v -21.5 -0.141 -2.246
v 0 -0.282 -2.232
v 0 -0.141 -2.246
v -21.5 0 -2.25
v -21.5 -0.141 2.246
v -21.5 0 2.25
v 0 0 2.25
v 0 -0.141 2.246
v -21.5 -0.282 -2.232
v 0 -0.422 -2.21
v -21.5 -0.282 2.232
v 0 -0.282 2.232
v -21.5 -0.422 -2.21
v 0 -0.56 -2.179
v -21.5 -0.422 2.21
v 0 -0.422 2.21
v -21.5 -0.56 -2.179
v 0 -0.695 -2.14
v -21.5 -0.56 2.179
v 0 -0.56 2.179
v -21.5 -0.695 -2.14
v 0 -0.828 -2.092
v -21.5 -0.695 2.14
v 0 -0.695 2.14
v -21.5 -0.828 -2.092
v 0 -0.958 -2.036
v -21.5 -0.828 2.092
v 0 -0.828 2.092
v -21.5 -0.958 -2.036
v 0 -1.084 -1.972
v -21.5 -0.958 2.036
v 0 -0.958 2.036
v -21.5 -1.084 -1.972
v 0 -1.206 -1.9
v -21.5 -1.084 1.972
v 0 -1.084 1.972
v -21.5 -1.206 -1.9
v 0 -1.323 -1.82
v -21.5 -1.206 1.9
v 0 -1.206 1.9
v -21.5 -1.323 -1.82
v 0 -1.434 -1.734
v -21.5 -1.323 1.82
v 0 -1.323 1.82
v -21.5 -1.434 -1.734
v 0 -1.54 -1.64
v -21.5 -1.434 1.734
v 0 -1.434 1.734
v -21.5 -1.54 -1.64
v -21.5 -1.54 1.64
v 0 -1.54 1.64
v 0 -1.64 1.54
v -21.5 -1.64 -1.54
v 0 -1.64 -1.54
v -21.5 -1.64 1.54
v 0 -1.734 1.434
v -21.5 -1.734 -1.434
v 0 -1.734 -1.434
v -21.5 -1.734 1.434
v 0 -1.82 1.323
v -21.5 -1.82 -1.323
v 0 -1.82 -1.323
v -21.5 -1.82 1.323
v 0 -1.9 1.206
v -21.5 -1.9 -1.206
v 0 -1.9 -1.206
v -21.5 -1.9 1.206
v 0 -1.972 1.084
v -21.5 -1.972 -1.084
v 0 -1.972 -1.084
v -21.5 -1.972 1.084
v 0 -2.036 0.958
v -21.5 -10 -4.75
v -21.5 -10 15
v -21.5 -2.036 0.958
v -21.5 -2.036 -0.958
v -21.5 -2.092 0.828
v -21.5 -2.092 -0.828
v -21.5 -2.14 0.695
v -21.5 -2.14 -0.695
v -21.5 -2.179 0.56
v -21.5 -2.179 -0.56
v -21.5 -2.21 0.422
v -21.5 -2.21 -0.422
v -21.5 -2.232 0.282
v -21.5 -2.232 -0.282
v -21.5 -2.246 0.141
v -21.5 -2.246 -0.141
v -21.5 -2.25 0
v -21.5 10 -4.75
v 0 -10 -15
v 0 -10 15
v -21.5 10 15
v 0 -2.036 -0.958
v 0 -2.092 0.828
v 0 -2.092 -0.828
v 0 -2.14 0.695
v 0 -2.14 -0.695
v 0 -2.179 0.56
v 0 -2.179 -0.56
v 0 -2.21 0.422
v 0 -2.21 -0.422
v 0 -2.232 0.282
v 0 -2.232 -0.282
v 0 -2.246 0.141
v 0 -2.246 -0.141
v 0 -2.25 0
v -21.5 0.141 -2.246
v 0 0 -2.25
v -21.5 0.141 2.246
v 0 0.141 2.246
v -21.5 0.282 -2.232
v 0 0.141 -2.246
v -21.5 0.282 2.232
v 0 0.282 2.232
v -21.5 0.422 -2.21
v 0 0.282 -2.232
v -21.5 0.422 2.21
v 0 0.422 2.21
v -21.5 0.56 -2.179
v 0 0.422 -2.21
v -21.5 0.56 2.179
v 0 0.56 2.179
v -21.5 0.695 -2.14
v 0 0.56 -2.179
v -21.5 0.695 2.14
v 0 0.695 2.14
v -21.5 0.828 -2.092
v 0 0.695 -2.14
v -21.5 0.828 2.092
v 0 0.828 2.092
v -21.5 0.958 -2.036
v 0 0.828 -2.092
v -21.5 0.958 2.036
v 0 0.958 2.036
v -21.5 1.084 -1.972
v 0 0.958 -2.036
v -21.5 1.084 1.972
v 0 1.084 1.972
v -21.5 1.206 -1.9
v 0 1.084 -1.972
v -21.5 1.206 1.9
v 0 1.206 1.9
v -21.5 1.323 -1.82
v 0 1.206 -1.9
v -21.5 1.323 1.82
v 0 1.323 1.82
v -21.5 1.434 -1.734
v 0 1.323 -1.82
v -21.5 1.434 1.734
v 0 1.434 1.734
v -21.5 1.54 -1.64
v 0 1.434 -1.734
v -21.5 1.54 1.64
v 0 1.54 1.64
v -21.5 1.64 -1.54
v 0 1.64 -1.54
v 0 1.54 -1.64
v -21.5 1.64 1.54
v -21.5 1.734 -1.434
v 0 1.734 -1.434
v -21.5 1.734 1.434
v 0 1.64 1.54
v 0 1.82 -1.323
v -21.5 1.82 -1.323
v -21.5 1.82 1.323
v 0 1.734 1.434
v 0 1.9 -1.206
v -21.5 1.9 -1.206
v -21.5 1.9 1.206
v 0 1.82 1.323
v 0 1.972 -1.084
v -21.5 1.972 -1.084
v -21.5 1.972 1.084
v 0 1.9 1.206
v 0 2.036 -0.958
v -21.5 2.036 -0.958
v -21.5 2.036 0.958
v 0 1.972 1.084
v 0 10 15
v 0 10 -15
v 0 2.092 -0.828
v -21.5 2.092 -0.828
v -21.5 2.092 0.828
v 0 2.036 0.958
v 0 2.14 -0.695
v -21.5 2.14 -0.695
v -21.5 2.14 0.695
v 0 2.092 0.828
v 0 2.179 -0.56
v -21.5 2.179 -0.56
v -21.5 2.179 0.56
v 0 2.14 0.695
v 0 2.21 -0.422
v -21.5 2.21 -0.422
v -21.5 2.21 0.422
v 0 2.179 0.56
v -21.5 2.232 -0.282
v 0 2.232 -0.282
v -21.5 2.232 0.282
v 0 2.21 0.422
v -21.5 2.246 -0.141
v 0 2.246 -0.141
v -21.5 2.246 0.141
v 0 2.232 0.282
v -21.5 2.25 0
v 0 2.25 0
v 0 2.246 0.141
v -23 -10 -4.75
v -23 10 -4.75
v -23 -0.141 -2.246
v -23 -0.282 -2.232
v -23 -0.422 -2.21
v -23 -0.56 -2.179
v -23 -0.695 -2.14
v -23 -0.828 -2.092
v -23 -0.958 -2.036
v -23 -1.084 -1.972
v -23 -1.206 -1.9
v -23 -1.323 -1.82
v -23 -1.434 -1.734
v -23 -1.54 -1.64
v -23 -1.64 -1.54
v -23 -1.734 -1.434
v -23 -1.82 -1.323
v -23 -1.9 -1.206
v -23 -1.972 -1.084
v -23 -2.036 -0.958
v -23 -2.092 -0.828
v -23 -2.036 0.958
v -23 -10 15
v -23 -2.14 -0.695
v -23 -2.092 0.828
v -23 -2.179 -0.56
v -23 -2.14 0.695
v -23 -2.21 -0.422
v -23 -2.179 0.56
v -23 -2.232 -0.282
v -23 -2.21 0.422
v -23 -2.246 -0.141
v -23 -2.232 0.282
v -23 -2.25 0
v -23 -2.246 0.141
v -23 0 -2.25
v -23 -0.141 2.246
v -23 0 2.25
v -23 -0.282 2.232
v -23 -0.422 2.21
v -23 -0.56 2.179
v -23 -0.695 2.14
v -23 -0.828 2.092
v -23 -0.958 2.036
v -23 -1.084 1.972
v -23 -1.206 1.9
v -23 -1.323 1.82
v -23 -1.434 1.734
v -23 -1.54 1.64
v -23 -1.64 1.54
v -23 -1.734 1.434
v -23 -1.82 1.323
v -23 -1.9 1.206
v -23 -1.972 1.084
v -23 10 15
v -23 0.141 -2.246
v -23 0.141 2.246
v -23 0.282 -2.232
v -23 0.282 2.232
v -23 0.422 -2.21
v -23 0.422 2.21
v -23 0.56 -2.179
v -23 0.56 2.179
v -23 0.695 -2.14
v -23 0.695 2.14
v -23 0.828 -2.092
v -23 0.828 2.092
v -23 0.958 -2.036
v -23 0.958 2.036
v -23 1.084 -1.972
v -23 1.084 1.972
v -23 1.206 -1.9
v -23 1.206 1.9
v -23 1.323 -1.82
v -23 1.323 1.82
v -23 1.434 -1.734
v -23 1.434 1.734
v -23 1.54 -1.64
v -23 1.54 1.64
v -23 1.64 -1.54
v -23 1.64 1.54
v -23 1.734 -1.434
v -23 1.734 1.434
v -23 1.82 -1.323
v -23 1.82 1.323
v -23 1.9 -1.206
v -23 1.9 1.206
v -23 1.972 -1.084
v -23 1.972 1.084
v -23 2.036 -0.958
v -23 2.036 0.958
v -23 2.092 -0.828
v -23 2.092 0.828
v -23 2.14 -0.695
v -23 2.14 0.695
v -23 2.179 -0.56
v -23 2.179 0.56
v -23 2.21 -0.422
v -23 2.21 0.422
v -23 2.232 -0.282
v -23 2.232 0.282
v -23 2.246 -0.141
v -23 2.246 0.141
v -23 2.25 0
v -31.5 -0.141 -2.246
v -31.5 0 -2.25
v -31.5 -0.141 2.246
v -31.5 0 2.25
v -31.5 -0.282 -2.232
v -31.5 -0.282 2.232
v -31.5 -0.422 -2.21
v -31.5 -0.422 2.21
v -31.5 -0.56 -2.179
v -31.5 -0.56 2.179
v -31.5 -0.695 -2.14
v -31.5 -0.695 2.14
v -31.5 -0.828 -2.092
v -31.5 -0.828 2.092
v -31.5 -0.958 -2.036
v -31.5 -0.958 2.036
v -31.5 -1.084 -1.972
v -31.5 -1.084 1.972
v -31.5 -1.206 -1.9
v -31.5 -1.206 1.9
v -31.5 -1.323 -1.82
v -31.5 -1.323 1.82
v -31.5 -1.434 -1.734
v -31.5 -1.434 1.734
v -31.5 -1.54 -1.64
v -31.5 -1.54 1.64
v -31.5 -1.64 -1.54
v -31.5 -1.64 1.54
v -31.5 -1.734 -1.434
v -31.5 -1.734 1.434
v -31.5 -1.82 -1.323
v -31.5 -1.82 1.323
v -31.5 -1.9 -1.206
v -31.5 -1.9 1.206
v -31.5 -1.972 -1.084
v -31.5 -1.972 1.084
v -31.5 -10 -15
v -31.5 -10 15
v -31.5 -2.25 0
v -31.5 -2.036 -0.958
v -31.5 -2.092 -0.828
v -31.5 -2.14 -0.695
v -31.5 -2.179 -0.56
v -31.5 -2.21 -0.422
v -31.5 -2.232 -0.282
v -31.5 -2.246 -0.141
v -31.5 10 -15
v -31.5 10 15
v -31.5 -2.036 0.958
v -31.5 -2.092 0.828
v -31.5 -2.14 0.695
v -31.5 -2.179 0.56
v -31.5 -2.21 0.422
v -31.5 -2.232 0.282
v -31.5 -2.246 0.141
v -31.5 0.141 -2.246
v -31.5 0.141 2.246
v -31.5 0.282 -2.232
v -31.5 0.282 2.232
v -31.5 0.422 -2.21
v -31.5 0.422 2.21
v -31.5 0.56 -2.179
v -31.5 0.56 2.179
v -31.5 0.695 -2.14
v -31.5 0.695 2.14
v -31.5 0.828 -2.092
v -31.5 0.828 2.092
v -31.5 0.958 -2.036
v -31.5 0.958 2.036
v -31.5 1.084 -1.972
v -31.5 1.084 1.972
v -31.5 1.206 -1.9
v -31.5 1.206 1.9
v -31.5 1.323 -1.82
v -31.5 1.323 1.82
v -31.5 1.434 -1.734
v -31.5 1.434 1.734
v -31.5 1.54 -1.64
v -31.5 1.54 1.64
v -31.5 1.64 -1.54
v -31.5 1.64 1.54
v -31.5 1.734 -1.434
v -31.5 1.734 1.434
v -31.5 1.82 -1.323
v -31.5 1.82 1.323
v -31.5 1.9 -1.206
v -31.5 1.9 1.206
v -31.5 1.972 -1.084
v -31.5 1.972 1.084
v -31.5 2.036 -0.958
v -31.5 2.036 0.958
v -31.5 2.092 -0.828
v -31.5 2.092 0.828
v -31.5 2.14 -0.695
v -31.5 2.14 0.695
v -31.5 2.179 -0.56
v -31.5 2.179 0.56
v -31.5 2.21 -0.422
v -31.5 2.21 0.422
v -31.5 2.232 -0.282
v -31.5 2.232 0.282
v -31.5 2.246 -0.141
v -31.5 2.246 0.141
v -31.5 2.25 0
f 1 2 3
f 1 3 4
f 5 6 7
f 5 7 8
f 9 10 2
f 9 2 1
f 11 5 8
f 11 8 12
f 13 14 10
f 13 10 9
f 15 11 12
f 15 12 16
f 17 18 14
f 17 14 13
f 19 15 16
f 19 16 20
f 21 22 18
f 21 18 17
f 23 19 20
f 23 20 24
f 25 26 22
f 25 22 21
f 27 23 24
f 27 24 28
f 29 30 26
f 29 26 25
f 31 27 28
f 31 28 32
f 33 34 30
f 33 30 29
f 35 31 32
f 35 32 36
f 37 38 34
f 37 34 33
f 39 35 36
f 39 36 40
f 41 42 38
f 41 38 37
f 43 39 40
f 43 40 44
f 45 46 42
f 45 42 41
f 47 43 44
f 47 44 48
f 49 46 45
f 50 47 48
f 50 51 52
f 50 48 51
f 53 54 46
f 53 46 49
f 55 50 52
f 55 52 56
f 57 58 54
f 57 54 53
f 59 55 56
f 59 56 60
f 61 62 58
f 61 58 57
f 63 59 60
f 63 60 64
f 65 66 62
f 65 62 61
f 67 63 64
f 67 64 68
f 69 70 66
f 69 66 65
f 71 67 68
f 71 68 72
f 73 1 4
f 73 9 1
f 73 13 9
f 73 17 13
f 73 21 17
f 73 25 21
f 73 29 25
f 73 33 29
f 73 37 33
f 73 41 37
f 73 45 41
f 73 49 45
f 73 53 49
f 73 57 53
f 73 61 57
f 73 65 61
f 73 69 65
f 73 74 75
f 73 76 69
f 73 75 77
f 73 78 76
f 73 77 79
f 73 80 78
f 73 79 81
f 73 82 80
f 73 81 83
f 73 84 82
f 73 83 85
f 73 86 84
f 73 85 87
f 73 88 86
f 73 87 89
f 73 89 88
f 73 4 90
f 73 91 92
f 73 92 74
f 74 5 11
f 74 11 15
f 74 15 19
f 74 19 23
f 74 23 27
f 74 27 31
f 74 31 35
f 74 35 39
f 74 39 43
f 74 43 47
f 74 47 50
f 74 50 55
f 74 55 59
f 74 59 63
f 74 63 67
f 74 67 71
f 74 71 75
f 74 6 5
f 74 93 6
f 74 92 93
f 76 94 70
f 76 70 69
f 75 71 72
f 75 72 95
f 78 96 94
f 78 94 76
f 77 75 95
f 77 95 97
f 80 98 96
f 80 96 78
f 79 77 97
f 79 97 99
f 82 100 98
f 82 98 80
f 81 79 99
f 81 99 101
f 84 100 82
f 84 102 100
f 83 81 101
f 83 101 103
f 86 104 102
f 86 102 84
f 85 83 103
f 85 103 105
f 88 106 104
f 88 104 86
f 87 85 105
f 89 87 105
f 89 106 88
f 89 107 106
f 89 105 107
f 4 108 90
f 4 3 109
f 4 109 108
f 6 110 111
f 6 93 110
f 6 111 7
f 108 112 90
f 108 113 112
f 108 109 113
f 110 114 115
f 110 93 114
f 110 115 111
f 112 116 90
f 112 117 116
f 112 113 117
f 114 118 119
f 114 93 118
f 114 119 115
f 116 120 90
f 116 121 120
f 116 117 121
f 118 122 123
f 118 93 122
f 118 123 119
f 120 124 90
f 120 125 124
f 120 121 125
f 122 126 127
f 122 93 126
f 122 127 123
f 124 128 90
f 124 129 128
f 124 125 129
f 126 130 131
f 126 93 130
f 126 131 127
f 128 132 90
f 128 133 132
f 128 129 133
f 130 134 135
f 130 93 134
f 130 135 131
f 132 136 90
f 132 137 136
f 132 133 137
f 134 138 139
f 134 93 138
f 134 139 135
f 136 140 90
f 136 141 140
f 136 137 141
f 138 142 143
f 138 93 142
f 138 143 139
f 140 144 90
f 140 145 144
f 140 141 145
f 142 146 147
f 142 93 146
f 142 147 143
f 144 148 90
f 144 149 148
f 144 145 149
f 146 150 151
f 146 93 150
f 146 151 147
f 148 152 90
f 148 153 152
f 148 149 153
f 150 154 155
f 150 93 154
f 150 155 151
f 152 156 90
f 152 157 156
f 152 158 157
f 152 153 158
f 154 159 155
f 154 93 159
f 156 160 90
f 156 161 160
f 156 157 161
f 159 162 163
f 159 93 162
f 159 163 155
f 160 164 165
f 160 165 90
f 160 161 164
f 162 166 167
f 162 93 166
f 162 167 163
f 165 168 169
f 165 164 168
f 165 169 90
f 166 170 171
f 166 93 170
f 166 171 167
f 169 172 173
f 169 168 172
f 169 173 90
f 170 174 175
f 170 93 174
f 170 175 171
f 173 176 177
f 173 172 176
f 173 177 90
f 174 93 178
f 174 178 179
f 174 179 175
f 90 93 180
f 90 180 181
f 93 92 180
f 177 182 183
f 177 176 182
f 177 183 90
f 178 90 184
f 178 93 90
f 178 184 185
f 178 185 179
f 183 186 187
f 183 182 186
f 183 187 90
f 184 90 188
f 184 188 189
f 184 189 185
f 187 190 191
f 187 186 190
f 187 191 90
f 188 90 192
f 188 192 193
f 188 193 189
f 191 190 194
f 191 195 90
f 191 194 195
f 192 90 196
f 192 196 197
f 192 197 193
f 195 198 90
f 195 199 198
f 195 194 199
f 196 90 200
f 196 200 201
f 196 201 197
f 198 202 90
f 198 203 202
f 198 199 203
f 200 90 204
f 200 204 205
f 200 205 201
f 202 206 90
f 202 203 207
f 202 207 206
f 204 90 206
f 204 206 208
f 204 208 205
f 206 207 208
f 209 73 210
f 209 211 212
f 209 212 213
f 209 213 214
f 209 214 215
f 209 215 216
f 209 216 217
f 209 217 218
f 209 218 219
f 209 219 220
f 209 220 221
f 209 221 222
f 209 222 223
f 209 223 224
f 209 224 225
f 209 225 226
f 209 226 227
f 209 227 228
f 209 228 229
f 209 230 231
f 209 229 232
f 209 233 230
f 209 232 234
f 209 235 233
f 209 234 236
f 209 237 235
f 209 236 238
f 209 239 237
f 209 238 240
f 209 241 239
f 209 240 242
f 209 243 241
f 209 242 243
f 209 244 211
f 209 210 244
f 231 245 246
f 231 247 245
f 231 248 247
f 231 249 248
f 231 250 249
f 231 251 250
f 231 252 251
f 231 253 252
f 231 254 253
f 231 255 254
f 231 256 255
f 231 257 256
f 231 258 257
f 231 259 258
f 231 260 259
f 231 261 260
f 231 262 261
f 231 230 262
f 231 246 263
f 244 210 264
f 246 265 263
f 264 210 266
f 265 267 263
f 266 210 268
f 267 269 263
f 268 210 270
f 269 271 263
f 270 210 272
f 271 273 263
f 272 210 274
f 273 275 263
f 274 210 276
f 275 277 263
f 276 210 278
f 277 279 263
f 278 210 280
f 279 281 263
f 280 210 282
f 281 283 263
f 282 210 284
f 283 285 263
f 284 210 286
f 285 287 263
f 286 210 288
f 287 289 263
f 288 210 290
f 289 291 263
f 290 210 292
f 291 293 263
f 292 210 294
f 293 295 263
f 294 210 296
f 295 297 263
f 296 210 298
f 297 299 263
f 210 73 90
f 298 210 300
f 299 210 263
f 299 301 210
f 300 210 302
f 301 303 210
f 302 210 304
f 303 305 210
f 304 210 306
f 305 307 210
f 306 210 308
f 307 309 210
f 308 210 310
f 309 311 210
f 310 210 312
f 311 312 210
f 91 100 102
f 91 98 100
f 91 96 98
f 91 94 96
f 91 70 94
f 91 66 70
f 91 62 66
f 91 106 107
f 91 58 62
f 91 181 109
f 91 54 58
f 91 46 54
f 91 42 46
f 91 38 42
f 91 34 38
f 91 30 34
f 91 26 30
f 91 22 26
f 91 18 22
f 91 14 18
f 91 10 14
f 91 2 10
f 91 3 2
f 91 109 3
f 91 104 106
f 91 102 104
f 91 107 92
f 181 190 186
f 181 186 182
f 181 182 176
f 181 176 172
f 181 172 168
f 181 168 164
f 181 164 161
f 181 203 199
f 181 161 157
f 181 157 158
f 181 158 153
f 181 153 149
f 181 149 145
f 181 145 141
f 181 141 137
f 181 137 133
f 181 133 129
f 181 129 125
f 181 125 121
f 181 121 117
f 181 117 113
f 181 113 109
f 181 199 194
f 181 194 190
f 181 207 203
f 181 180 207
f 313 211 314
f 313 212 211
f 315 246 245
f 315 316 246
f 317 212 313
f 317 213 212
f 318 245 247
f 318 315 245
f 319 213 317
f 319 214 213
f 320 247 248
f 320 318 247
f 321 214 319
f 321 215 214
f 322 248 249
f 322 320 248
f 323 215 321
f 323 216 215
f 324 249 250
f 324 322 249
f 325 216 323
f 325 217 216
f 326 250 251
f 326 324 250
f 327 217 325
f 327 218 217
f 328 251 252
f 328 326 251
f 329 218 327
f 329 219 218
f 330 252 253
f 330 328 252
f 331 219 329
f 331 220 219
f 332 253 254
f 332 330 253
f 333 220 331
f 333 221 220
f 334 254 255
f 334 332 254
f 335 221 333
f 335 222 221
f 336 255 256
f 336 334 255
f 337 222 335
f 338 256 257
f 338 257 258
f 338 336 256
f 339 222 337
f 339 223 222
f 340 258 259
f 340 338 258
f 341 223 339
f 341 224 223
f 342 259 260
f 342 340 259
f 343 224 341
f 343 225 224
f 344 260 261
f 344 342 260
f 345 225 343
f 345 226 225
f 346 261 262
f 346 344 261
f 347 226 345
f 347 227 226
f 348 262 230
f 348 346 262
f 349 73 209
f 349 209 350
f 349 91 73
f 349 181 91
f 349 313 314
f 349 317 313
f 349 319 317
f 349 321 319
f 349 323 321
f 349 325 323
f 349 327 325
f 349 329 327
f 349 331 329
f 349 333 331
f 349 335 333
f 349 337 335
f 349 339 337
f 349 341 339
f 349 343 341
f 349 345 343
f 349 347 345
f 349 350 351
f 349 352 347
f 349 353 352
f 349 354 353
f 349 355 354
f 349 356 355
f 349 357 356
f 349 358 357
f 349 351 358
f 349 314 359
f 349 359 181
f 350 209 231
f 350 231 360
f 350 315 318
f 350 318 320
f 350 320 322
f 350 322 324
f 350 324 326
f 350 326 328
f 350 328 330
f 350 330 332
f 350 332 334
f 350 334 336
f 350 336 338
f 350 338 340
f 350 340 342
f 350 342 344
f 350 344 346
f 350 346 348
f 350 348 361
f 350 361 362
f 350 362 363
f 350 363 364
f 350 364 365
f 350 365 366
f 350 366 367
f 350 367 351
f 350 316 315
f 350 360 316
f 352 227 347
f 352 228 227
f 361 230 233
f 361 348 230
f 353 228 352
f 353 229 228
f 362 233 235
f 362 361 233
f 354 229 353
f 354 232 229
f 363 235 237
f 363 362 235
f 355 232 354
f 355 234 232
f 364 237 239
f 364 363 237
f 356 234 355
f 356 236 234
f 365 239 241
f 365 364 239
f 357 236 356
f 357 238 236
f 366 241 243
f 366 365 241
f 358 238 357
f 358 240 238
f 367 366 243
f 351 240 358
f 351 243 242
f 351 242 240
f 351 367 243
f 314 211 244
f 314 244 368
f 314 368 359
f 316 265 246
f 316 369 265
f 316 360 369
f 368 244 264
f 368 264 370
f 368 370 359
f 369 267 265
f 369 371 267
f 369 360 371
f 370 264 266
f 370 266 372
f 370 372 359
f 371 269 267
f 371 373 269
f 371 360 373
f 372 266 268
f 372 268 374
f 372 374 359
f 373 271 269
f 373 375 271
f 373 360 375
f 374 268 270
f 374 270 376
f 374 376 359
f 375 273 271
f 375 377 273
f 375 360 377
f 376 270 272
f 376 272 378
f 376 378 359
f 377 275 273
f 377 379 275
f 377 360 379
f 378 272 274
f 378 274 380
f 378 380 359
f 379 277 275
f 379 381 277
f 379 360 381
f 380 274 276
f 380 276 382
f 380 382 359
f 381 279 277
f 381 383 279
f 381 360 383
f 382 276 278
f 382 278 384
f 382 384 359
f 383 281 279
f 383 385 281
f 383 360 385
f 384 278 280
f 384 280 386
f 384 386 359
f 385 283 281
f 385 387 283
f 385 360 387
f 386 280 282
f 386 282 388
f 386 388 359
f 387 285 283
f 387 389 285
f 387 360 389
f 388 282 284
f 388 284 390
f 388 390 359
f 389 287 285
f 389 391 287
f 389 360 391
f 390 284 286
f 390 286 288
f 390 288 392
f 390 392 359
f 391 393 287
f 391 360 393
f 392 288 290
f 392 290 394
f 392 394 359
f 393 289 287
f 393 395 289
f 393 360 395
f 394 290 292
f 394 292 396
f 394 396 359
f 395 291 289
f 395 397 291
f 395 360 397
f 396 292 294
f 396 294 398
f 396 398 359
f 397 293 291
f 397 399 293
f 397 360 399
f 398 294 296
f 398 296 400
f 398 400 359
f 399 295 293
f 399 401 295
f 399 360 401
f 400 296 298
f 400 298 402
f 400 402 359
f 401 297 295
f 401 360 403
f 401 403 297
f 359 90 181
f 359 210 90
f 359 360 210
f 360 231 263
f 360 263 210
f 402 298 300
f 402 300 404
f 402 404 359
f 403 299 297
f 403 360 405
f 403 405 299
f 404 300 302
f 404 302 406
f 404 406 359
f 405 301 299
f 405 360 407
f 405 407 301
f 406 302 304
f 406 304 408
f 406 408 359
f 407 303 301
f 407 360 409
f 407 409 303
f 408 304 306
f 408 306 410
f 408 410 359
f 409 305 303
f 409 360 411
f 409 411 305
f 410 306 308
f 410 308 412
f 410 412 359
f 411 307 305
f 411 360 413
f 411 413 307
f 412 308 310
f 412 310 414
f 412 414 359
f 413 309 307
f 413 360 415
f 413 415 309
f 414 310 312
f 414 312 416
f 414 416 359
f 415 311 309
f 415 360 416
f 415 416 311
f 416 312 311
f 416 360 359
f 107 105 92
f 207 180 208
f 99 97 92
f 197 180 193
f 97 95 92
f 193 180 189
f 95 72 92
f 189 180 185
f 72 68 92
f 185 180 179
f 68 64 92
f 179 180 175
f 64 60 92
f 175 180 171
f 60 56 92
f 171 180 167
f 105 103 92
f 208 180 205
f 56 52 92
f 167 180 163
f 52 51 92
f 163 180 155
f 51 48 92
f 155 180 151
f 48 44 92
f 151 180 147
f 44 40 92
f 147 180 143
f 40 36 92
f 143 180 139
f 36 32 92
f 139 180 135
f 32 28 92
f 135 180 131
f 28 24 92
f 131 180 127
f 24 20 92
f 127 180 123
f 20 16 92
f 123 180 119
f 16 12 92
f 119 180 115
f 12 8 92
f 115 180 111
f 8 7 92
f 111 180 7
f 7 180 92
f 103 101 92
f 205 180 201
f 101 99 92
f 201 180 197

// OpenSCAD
// file: ../../../Parameters.scad
//Main tube diameter - hole [mm]
main_tube_outer_diameter = 25.4;
main_tube_inner_diameter = 23.5;

//Tube for undercarriage - hole [mm]
tube_for_undercarriage_outer_diameter = 10.6;
tube_for_undercarriage_inner_diameter = 6;
global_clearance = 0.5;


//umístění podvozkových trubek

second_undercarriage_hole = main_tube_outer_diameter*2 + main_tube_outer_diameter/5 + main_tube_outer_diameter/2 + 170 + 160;

// Parameters of cube couplings
coupling_wall_thickness = main_tube_outer_diameter/5;  //width of coupling walls 
thickness_between_tubes = main_tube_outer_diameter/10;    // minimum distance between tubes in couplings

coupling_wall_thickness_undercarriage = tube_for_undercarriage_outer_diameter/3;
thickness_between_tubes_undercarriage = tube_for_undercarriage_outer_diameter/10;

//Screw diameter and nut for M4 [mm]
M4_screw_diameter=4.5;
Nut_height_M4 = 3.2;
Nut_diameter_M4 = 7.86;


//Screw diameter and nut for M3 [mm]
M3_screw_diameter = 3.2;
Nut_height_M3 = 1.7;	
Nut_diameter_M3 = 6.6; 


//The tube for help
Help_main_tube_outer = 25;
Help_main_tube_inner = 23; 
Help_tube_for_undercarriage_outer = 10;
Help_tube_for_undercarriage_inner = 5;


//main hull parameters

hull_drop_length = 580;
hull_wall_thickness = 0.8;
hull_y_size = 120;
hull_z_size = 150;
hull_x_size = 580;
hull_corner_radius = 4;
hull_airfoil_thickness= 35;  // thickness of drop generating airfoil in percent of lenght.
hull_scale_x = 1;
hull_scale_y = 1.5;
hull_scale_z = 1.5;

main_pilon_position = 170+68;
cover_pilon_position = 180;
height_of_vertical_tube = 275; //278mm je změřená délka trubky. 

ribbon_width = 5; // šířka vyztužovacích lemů. 

// šířka otvoru v přední části kapoty pro držák motoru.
width_of_engine_holder = 63;

//Top Cover Division - dělení horního krytu pro tisk
top_cover_division = [0, 50, 150, 280, 410, hull_x_size]; // upraveny seznam tak, aby deleni začinalo od nuly, což umožňí úplně automatické rozdělení.

//Bottom Cover Division - dělení dolního krytu pro tisk
bottom_cover_division = [0,100,250,365, 470, hull_x_size];
// zkrácená část pro payload pro testovací tisk
//bottom_cover_division = [0,200,250,365, 470, hull_x_size];

//Base Divison - dělení podložky
base_division = [0,140,280,410, hull_x_size];

//Cover pilon division - na výšku (v ose Z)
cover_pilon_division = [0,170,height_of_vertical_tube + main_tube_outer_diameter + coupling_wall_thickness];

//pozice šroubů
	//horní kryt
top_screw_position = [0, (top_cover_division[0] + top_cover_division[1])/4, (top_cover_division[2] - top_cover_division[1])/2 + top_cover_division[1], (top_cover_division[3] - top_cover_division[2])/2 + top_cover_division[2],(top_cover_division[4] - top_cover_division[3])/2 + top_cover_division[3],(top_cover_division[5] - top_cover_division[4])/2 + top_cover_division[4] - 20];
	//spodní kryt
bottom_screw_position = [0,(bottom_cover_division[0] + bottom_cover_division[1])/15 + 5, bottom_cover_division[1]/1.1, + bottom_cover_division[3], bottom_cover_division[3] + bottom_cover_division[1]/2, bottom_cover_division[4] - 6*global_clearance, bottom_cover_division[4] + bottom_cover_division[1]/2.5];




//šířka zámků
lock_width = 10;

//délka zámků
lock_length = 3;


//accumulator
//základní rozměry akumulátoru
width_of_accumulator = 129.4;//45+1;
depth_of_accumulator = 40.61;
height_of_accumulator = 43.65;
//Zapuštění akumulátoru
sink_of_accumulator = 5; //main_tube_outer_diameter/5 - Nut_height_M3*1.5;

//tloušťka hrany spojky
accumulator_holder_width = 18; 
accumulator_holder_thickness = 10; 

//posunutí akumálátoru na podložce
move_of_accumulator = 165;   // pozice akumulátoru (ovlivňuje těžiště)


////////////////
// Senzory
///////////////////

//opticalFlow
    width_optical_flow_senzor = 45.5;
    depth_optical_flow_senzor = 6;
    height_optical_flow_senzor = 35;
    sink_of_optical_flow_senzor = depth_optical_flow_senzor - 5; 
    M3_optical_flow_senzor_Z = 30.4;
    M3_optical_flow_senzor_X = 24;
    M3_optical_flow_senzor_Z_alone = 9.1;
    M3_optical_flow_senzor_X_alone = 16.7;
// file: ../screw_cutter.scad
draft = true;

module screw_cutter(draft){

width = 30;
depth = 20;

//délka šroubu, kterou potřebujeme
height_need_screw = 21.5;

//délka navíc pro upevnění šroubu
tolerance = 10;

//průměr řezaného šroubu
diamter_of_cut_screw = M4_screw_diameter;

    difference(){

    	translate([-width/2, -depth/2,0])
    		cube([width,depth,height_need_screw + tolerance]);

    	//šroub
    	translate([0,0,-global_clearance/2])
    		cylinder(h = height_need_screw + tolerance + global_clearance, r = diamter_of_cut_screw/2, $fn = draft ? 50 : 100 );

    	//prořez
    	translate([- global_clearance/2 - diamter_of_cut_screw, - depth/2 - global_clearance/2,height_need_screw])
    		cube([width + global_clearance, depth + global_clearance, 1.5]);

	}	

}


screw_cutter(draft);



include <../../Parameters.scad>
// main file
use <../screw_cutter.scad>

rotate([0,-90,0])
    screw_cutter();
